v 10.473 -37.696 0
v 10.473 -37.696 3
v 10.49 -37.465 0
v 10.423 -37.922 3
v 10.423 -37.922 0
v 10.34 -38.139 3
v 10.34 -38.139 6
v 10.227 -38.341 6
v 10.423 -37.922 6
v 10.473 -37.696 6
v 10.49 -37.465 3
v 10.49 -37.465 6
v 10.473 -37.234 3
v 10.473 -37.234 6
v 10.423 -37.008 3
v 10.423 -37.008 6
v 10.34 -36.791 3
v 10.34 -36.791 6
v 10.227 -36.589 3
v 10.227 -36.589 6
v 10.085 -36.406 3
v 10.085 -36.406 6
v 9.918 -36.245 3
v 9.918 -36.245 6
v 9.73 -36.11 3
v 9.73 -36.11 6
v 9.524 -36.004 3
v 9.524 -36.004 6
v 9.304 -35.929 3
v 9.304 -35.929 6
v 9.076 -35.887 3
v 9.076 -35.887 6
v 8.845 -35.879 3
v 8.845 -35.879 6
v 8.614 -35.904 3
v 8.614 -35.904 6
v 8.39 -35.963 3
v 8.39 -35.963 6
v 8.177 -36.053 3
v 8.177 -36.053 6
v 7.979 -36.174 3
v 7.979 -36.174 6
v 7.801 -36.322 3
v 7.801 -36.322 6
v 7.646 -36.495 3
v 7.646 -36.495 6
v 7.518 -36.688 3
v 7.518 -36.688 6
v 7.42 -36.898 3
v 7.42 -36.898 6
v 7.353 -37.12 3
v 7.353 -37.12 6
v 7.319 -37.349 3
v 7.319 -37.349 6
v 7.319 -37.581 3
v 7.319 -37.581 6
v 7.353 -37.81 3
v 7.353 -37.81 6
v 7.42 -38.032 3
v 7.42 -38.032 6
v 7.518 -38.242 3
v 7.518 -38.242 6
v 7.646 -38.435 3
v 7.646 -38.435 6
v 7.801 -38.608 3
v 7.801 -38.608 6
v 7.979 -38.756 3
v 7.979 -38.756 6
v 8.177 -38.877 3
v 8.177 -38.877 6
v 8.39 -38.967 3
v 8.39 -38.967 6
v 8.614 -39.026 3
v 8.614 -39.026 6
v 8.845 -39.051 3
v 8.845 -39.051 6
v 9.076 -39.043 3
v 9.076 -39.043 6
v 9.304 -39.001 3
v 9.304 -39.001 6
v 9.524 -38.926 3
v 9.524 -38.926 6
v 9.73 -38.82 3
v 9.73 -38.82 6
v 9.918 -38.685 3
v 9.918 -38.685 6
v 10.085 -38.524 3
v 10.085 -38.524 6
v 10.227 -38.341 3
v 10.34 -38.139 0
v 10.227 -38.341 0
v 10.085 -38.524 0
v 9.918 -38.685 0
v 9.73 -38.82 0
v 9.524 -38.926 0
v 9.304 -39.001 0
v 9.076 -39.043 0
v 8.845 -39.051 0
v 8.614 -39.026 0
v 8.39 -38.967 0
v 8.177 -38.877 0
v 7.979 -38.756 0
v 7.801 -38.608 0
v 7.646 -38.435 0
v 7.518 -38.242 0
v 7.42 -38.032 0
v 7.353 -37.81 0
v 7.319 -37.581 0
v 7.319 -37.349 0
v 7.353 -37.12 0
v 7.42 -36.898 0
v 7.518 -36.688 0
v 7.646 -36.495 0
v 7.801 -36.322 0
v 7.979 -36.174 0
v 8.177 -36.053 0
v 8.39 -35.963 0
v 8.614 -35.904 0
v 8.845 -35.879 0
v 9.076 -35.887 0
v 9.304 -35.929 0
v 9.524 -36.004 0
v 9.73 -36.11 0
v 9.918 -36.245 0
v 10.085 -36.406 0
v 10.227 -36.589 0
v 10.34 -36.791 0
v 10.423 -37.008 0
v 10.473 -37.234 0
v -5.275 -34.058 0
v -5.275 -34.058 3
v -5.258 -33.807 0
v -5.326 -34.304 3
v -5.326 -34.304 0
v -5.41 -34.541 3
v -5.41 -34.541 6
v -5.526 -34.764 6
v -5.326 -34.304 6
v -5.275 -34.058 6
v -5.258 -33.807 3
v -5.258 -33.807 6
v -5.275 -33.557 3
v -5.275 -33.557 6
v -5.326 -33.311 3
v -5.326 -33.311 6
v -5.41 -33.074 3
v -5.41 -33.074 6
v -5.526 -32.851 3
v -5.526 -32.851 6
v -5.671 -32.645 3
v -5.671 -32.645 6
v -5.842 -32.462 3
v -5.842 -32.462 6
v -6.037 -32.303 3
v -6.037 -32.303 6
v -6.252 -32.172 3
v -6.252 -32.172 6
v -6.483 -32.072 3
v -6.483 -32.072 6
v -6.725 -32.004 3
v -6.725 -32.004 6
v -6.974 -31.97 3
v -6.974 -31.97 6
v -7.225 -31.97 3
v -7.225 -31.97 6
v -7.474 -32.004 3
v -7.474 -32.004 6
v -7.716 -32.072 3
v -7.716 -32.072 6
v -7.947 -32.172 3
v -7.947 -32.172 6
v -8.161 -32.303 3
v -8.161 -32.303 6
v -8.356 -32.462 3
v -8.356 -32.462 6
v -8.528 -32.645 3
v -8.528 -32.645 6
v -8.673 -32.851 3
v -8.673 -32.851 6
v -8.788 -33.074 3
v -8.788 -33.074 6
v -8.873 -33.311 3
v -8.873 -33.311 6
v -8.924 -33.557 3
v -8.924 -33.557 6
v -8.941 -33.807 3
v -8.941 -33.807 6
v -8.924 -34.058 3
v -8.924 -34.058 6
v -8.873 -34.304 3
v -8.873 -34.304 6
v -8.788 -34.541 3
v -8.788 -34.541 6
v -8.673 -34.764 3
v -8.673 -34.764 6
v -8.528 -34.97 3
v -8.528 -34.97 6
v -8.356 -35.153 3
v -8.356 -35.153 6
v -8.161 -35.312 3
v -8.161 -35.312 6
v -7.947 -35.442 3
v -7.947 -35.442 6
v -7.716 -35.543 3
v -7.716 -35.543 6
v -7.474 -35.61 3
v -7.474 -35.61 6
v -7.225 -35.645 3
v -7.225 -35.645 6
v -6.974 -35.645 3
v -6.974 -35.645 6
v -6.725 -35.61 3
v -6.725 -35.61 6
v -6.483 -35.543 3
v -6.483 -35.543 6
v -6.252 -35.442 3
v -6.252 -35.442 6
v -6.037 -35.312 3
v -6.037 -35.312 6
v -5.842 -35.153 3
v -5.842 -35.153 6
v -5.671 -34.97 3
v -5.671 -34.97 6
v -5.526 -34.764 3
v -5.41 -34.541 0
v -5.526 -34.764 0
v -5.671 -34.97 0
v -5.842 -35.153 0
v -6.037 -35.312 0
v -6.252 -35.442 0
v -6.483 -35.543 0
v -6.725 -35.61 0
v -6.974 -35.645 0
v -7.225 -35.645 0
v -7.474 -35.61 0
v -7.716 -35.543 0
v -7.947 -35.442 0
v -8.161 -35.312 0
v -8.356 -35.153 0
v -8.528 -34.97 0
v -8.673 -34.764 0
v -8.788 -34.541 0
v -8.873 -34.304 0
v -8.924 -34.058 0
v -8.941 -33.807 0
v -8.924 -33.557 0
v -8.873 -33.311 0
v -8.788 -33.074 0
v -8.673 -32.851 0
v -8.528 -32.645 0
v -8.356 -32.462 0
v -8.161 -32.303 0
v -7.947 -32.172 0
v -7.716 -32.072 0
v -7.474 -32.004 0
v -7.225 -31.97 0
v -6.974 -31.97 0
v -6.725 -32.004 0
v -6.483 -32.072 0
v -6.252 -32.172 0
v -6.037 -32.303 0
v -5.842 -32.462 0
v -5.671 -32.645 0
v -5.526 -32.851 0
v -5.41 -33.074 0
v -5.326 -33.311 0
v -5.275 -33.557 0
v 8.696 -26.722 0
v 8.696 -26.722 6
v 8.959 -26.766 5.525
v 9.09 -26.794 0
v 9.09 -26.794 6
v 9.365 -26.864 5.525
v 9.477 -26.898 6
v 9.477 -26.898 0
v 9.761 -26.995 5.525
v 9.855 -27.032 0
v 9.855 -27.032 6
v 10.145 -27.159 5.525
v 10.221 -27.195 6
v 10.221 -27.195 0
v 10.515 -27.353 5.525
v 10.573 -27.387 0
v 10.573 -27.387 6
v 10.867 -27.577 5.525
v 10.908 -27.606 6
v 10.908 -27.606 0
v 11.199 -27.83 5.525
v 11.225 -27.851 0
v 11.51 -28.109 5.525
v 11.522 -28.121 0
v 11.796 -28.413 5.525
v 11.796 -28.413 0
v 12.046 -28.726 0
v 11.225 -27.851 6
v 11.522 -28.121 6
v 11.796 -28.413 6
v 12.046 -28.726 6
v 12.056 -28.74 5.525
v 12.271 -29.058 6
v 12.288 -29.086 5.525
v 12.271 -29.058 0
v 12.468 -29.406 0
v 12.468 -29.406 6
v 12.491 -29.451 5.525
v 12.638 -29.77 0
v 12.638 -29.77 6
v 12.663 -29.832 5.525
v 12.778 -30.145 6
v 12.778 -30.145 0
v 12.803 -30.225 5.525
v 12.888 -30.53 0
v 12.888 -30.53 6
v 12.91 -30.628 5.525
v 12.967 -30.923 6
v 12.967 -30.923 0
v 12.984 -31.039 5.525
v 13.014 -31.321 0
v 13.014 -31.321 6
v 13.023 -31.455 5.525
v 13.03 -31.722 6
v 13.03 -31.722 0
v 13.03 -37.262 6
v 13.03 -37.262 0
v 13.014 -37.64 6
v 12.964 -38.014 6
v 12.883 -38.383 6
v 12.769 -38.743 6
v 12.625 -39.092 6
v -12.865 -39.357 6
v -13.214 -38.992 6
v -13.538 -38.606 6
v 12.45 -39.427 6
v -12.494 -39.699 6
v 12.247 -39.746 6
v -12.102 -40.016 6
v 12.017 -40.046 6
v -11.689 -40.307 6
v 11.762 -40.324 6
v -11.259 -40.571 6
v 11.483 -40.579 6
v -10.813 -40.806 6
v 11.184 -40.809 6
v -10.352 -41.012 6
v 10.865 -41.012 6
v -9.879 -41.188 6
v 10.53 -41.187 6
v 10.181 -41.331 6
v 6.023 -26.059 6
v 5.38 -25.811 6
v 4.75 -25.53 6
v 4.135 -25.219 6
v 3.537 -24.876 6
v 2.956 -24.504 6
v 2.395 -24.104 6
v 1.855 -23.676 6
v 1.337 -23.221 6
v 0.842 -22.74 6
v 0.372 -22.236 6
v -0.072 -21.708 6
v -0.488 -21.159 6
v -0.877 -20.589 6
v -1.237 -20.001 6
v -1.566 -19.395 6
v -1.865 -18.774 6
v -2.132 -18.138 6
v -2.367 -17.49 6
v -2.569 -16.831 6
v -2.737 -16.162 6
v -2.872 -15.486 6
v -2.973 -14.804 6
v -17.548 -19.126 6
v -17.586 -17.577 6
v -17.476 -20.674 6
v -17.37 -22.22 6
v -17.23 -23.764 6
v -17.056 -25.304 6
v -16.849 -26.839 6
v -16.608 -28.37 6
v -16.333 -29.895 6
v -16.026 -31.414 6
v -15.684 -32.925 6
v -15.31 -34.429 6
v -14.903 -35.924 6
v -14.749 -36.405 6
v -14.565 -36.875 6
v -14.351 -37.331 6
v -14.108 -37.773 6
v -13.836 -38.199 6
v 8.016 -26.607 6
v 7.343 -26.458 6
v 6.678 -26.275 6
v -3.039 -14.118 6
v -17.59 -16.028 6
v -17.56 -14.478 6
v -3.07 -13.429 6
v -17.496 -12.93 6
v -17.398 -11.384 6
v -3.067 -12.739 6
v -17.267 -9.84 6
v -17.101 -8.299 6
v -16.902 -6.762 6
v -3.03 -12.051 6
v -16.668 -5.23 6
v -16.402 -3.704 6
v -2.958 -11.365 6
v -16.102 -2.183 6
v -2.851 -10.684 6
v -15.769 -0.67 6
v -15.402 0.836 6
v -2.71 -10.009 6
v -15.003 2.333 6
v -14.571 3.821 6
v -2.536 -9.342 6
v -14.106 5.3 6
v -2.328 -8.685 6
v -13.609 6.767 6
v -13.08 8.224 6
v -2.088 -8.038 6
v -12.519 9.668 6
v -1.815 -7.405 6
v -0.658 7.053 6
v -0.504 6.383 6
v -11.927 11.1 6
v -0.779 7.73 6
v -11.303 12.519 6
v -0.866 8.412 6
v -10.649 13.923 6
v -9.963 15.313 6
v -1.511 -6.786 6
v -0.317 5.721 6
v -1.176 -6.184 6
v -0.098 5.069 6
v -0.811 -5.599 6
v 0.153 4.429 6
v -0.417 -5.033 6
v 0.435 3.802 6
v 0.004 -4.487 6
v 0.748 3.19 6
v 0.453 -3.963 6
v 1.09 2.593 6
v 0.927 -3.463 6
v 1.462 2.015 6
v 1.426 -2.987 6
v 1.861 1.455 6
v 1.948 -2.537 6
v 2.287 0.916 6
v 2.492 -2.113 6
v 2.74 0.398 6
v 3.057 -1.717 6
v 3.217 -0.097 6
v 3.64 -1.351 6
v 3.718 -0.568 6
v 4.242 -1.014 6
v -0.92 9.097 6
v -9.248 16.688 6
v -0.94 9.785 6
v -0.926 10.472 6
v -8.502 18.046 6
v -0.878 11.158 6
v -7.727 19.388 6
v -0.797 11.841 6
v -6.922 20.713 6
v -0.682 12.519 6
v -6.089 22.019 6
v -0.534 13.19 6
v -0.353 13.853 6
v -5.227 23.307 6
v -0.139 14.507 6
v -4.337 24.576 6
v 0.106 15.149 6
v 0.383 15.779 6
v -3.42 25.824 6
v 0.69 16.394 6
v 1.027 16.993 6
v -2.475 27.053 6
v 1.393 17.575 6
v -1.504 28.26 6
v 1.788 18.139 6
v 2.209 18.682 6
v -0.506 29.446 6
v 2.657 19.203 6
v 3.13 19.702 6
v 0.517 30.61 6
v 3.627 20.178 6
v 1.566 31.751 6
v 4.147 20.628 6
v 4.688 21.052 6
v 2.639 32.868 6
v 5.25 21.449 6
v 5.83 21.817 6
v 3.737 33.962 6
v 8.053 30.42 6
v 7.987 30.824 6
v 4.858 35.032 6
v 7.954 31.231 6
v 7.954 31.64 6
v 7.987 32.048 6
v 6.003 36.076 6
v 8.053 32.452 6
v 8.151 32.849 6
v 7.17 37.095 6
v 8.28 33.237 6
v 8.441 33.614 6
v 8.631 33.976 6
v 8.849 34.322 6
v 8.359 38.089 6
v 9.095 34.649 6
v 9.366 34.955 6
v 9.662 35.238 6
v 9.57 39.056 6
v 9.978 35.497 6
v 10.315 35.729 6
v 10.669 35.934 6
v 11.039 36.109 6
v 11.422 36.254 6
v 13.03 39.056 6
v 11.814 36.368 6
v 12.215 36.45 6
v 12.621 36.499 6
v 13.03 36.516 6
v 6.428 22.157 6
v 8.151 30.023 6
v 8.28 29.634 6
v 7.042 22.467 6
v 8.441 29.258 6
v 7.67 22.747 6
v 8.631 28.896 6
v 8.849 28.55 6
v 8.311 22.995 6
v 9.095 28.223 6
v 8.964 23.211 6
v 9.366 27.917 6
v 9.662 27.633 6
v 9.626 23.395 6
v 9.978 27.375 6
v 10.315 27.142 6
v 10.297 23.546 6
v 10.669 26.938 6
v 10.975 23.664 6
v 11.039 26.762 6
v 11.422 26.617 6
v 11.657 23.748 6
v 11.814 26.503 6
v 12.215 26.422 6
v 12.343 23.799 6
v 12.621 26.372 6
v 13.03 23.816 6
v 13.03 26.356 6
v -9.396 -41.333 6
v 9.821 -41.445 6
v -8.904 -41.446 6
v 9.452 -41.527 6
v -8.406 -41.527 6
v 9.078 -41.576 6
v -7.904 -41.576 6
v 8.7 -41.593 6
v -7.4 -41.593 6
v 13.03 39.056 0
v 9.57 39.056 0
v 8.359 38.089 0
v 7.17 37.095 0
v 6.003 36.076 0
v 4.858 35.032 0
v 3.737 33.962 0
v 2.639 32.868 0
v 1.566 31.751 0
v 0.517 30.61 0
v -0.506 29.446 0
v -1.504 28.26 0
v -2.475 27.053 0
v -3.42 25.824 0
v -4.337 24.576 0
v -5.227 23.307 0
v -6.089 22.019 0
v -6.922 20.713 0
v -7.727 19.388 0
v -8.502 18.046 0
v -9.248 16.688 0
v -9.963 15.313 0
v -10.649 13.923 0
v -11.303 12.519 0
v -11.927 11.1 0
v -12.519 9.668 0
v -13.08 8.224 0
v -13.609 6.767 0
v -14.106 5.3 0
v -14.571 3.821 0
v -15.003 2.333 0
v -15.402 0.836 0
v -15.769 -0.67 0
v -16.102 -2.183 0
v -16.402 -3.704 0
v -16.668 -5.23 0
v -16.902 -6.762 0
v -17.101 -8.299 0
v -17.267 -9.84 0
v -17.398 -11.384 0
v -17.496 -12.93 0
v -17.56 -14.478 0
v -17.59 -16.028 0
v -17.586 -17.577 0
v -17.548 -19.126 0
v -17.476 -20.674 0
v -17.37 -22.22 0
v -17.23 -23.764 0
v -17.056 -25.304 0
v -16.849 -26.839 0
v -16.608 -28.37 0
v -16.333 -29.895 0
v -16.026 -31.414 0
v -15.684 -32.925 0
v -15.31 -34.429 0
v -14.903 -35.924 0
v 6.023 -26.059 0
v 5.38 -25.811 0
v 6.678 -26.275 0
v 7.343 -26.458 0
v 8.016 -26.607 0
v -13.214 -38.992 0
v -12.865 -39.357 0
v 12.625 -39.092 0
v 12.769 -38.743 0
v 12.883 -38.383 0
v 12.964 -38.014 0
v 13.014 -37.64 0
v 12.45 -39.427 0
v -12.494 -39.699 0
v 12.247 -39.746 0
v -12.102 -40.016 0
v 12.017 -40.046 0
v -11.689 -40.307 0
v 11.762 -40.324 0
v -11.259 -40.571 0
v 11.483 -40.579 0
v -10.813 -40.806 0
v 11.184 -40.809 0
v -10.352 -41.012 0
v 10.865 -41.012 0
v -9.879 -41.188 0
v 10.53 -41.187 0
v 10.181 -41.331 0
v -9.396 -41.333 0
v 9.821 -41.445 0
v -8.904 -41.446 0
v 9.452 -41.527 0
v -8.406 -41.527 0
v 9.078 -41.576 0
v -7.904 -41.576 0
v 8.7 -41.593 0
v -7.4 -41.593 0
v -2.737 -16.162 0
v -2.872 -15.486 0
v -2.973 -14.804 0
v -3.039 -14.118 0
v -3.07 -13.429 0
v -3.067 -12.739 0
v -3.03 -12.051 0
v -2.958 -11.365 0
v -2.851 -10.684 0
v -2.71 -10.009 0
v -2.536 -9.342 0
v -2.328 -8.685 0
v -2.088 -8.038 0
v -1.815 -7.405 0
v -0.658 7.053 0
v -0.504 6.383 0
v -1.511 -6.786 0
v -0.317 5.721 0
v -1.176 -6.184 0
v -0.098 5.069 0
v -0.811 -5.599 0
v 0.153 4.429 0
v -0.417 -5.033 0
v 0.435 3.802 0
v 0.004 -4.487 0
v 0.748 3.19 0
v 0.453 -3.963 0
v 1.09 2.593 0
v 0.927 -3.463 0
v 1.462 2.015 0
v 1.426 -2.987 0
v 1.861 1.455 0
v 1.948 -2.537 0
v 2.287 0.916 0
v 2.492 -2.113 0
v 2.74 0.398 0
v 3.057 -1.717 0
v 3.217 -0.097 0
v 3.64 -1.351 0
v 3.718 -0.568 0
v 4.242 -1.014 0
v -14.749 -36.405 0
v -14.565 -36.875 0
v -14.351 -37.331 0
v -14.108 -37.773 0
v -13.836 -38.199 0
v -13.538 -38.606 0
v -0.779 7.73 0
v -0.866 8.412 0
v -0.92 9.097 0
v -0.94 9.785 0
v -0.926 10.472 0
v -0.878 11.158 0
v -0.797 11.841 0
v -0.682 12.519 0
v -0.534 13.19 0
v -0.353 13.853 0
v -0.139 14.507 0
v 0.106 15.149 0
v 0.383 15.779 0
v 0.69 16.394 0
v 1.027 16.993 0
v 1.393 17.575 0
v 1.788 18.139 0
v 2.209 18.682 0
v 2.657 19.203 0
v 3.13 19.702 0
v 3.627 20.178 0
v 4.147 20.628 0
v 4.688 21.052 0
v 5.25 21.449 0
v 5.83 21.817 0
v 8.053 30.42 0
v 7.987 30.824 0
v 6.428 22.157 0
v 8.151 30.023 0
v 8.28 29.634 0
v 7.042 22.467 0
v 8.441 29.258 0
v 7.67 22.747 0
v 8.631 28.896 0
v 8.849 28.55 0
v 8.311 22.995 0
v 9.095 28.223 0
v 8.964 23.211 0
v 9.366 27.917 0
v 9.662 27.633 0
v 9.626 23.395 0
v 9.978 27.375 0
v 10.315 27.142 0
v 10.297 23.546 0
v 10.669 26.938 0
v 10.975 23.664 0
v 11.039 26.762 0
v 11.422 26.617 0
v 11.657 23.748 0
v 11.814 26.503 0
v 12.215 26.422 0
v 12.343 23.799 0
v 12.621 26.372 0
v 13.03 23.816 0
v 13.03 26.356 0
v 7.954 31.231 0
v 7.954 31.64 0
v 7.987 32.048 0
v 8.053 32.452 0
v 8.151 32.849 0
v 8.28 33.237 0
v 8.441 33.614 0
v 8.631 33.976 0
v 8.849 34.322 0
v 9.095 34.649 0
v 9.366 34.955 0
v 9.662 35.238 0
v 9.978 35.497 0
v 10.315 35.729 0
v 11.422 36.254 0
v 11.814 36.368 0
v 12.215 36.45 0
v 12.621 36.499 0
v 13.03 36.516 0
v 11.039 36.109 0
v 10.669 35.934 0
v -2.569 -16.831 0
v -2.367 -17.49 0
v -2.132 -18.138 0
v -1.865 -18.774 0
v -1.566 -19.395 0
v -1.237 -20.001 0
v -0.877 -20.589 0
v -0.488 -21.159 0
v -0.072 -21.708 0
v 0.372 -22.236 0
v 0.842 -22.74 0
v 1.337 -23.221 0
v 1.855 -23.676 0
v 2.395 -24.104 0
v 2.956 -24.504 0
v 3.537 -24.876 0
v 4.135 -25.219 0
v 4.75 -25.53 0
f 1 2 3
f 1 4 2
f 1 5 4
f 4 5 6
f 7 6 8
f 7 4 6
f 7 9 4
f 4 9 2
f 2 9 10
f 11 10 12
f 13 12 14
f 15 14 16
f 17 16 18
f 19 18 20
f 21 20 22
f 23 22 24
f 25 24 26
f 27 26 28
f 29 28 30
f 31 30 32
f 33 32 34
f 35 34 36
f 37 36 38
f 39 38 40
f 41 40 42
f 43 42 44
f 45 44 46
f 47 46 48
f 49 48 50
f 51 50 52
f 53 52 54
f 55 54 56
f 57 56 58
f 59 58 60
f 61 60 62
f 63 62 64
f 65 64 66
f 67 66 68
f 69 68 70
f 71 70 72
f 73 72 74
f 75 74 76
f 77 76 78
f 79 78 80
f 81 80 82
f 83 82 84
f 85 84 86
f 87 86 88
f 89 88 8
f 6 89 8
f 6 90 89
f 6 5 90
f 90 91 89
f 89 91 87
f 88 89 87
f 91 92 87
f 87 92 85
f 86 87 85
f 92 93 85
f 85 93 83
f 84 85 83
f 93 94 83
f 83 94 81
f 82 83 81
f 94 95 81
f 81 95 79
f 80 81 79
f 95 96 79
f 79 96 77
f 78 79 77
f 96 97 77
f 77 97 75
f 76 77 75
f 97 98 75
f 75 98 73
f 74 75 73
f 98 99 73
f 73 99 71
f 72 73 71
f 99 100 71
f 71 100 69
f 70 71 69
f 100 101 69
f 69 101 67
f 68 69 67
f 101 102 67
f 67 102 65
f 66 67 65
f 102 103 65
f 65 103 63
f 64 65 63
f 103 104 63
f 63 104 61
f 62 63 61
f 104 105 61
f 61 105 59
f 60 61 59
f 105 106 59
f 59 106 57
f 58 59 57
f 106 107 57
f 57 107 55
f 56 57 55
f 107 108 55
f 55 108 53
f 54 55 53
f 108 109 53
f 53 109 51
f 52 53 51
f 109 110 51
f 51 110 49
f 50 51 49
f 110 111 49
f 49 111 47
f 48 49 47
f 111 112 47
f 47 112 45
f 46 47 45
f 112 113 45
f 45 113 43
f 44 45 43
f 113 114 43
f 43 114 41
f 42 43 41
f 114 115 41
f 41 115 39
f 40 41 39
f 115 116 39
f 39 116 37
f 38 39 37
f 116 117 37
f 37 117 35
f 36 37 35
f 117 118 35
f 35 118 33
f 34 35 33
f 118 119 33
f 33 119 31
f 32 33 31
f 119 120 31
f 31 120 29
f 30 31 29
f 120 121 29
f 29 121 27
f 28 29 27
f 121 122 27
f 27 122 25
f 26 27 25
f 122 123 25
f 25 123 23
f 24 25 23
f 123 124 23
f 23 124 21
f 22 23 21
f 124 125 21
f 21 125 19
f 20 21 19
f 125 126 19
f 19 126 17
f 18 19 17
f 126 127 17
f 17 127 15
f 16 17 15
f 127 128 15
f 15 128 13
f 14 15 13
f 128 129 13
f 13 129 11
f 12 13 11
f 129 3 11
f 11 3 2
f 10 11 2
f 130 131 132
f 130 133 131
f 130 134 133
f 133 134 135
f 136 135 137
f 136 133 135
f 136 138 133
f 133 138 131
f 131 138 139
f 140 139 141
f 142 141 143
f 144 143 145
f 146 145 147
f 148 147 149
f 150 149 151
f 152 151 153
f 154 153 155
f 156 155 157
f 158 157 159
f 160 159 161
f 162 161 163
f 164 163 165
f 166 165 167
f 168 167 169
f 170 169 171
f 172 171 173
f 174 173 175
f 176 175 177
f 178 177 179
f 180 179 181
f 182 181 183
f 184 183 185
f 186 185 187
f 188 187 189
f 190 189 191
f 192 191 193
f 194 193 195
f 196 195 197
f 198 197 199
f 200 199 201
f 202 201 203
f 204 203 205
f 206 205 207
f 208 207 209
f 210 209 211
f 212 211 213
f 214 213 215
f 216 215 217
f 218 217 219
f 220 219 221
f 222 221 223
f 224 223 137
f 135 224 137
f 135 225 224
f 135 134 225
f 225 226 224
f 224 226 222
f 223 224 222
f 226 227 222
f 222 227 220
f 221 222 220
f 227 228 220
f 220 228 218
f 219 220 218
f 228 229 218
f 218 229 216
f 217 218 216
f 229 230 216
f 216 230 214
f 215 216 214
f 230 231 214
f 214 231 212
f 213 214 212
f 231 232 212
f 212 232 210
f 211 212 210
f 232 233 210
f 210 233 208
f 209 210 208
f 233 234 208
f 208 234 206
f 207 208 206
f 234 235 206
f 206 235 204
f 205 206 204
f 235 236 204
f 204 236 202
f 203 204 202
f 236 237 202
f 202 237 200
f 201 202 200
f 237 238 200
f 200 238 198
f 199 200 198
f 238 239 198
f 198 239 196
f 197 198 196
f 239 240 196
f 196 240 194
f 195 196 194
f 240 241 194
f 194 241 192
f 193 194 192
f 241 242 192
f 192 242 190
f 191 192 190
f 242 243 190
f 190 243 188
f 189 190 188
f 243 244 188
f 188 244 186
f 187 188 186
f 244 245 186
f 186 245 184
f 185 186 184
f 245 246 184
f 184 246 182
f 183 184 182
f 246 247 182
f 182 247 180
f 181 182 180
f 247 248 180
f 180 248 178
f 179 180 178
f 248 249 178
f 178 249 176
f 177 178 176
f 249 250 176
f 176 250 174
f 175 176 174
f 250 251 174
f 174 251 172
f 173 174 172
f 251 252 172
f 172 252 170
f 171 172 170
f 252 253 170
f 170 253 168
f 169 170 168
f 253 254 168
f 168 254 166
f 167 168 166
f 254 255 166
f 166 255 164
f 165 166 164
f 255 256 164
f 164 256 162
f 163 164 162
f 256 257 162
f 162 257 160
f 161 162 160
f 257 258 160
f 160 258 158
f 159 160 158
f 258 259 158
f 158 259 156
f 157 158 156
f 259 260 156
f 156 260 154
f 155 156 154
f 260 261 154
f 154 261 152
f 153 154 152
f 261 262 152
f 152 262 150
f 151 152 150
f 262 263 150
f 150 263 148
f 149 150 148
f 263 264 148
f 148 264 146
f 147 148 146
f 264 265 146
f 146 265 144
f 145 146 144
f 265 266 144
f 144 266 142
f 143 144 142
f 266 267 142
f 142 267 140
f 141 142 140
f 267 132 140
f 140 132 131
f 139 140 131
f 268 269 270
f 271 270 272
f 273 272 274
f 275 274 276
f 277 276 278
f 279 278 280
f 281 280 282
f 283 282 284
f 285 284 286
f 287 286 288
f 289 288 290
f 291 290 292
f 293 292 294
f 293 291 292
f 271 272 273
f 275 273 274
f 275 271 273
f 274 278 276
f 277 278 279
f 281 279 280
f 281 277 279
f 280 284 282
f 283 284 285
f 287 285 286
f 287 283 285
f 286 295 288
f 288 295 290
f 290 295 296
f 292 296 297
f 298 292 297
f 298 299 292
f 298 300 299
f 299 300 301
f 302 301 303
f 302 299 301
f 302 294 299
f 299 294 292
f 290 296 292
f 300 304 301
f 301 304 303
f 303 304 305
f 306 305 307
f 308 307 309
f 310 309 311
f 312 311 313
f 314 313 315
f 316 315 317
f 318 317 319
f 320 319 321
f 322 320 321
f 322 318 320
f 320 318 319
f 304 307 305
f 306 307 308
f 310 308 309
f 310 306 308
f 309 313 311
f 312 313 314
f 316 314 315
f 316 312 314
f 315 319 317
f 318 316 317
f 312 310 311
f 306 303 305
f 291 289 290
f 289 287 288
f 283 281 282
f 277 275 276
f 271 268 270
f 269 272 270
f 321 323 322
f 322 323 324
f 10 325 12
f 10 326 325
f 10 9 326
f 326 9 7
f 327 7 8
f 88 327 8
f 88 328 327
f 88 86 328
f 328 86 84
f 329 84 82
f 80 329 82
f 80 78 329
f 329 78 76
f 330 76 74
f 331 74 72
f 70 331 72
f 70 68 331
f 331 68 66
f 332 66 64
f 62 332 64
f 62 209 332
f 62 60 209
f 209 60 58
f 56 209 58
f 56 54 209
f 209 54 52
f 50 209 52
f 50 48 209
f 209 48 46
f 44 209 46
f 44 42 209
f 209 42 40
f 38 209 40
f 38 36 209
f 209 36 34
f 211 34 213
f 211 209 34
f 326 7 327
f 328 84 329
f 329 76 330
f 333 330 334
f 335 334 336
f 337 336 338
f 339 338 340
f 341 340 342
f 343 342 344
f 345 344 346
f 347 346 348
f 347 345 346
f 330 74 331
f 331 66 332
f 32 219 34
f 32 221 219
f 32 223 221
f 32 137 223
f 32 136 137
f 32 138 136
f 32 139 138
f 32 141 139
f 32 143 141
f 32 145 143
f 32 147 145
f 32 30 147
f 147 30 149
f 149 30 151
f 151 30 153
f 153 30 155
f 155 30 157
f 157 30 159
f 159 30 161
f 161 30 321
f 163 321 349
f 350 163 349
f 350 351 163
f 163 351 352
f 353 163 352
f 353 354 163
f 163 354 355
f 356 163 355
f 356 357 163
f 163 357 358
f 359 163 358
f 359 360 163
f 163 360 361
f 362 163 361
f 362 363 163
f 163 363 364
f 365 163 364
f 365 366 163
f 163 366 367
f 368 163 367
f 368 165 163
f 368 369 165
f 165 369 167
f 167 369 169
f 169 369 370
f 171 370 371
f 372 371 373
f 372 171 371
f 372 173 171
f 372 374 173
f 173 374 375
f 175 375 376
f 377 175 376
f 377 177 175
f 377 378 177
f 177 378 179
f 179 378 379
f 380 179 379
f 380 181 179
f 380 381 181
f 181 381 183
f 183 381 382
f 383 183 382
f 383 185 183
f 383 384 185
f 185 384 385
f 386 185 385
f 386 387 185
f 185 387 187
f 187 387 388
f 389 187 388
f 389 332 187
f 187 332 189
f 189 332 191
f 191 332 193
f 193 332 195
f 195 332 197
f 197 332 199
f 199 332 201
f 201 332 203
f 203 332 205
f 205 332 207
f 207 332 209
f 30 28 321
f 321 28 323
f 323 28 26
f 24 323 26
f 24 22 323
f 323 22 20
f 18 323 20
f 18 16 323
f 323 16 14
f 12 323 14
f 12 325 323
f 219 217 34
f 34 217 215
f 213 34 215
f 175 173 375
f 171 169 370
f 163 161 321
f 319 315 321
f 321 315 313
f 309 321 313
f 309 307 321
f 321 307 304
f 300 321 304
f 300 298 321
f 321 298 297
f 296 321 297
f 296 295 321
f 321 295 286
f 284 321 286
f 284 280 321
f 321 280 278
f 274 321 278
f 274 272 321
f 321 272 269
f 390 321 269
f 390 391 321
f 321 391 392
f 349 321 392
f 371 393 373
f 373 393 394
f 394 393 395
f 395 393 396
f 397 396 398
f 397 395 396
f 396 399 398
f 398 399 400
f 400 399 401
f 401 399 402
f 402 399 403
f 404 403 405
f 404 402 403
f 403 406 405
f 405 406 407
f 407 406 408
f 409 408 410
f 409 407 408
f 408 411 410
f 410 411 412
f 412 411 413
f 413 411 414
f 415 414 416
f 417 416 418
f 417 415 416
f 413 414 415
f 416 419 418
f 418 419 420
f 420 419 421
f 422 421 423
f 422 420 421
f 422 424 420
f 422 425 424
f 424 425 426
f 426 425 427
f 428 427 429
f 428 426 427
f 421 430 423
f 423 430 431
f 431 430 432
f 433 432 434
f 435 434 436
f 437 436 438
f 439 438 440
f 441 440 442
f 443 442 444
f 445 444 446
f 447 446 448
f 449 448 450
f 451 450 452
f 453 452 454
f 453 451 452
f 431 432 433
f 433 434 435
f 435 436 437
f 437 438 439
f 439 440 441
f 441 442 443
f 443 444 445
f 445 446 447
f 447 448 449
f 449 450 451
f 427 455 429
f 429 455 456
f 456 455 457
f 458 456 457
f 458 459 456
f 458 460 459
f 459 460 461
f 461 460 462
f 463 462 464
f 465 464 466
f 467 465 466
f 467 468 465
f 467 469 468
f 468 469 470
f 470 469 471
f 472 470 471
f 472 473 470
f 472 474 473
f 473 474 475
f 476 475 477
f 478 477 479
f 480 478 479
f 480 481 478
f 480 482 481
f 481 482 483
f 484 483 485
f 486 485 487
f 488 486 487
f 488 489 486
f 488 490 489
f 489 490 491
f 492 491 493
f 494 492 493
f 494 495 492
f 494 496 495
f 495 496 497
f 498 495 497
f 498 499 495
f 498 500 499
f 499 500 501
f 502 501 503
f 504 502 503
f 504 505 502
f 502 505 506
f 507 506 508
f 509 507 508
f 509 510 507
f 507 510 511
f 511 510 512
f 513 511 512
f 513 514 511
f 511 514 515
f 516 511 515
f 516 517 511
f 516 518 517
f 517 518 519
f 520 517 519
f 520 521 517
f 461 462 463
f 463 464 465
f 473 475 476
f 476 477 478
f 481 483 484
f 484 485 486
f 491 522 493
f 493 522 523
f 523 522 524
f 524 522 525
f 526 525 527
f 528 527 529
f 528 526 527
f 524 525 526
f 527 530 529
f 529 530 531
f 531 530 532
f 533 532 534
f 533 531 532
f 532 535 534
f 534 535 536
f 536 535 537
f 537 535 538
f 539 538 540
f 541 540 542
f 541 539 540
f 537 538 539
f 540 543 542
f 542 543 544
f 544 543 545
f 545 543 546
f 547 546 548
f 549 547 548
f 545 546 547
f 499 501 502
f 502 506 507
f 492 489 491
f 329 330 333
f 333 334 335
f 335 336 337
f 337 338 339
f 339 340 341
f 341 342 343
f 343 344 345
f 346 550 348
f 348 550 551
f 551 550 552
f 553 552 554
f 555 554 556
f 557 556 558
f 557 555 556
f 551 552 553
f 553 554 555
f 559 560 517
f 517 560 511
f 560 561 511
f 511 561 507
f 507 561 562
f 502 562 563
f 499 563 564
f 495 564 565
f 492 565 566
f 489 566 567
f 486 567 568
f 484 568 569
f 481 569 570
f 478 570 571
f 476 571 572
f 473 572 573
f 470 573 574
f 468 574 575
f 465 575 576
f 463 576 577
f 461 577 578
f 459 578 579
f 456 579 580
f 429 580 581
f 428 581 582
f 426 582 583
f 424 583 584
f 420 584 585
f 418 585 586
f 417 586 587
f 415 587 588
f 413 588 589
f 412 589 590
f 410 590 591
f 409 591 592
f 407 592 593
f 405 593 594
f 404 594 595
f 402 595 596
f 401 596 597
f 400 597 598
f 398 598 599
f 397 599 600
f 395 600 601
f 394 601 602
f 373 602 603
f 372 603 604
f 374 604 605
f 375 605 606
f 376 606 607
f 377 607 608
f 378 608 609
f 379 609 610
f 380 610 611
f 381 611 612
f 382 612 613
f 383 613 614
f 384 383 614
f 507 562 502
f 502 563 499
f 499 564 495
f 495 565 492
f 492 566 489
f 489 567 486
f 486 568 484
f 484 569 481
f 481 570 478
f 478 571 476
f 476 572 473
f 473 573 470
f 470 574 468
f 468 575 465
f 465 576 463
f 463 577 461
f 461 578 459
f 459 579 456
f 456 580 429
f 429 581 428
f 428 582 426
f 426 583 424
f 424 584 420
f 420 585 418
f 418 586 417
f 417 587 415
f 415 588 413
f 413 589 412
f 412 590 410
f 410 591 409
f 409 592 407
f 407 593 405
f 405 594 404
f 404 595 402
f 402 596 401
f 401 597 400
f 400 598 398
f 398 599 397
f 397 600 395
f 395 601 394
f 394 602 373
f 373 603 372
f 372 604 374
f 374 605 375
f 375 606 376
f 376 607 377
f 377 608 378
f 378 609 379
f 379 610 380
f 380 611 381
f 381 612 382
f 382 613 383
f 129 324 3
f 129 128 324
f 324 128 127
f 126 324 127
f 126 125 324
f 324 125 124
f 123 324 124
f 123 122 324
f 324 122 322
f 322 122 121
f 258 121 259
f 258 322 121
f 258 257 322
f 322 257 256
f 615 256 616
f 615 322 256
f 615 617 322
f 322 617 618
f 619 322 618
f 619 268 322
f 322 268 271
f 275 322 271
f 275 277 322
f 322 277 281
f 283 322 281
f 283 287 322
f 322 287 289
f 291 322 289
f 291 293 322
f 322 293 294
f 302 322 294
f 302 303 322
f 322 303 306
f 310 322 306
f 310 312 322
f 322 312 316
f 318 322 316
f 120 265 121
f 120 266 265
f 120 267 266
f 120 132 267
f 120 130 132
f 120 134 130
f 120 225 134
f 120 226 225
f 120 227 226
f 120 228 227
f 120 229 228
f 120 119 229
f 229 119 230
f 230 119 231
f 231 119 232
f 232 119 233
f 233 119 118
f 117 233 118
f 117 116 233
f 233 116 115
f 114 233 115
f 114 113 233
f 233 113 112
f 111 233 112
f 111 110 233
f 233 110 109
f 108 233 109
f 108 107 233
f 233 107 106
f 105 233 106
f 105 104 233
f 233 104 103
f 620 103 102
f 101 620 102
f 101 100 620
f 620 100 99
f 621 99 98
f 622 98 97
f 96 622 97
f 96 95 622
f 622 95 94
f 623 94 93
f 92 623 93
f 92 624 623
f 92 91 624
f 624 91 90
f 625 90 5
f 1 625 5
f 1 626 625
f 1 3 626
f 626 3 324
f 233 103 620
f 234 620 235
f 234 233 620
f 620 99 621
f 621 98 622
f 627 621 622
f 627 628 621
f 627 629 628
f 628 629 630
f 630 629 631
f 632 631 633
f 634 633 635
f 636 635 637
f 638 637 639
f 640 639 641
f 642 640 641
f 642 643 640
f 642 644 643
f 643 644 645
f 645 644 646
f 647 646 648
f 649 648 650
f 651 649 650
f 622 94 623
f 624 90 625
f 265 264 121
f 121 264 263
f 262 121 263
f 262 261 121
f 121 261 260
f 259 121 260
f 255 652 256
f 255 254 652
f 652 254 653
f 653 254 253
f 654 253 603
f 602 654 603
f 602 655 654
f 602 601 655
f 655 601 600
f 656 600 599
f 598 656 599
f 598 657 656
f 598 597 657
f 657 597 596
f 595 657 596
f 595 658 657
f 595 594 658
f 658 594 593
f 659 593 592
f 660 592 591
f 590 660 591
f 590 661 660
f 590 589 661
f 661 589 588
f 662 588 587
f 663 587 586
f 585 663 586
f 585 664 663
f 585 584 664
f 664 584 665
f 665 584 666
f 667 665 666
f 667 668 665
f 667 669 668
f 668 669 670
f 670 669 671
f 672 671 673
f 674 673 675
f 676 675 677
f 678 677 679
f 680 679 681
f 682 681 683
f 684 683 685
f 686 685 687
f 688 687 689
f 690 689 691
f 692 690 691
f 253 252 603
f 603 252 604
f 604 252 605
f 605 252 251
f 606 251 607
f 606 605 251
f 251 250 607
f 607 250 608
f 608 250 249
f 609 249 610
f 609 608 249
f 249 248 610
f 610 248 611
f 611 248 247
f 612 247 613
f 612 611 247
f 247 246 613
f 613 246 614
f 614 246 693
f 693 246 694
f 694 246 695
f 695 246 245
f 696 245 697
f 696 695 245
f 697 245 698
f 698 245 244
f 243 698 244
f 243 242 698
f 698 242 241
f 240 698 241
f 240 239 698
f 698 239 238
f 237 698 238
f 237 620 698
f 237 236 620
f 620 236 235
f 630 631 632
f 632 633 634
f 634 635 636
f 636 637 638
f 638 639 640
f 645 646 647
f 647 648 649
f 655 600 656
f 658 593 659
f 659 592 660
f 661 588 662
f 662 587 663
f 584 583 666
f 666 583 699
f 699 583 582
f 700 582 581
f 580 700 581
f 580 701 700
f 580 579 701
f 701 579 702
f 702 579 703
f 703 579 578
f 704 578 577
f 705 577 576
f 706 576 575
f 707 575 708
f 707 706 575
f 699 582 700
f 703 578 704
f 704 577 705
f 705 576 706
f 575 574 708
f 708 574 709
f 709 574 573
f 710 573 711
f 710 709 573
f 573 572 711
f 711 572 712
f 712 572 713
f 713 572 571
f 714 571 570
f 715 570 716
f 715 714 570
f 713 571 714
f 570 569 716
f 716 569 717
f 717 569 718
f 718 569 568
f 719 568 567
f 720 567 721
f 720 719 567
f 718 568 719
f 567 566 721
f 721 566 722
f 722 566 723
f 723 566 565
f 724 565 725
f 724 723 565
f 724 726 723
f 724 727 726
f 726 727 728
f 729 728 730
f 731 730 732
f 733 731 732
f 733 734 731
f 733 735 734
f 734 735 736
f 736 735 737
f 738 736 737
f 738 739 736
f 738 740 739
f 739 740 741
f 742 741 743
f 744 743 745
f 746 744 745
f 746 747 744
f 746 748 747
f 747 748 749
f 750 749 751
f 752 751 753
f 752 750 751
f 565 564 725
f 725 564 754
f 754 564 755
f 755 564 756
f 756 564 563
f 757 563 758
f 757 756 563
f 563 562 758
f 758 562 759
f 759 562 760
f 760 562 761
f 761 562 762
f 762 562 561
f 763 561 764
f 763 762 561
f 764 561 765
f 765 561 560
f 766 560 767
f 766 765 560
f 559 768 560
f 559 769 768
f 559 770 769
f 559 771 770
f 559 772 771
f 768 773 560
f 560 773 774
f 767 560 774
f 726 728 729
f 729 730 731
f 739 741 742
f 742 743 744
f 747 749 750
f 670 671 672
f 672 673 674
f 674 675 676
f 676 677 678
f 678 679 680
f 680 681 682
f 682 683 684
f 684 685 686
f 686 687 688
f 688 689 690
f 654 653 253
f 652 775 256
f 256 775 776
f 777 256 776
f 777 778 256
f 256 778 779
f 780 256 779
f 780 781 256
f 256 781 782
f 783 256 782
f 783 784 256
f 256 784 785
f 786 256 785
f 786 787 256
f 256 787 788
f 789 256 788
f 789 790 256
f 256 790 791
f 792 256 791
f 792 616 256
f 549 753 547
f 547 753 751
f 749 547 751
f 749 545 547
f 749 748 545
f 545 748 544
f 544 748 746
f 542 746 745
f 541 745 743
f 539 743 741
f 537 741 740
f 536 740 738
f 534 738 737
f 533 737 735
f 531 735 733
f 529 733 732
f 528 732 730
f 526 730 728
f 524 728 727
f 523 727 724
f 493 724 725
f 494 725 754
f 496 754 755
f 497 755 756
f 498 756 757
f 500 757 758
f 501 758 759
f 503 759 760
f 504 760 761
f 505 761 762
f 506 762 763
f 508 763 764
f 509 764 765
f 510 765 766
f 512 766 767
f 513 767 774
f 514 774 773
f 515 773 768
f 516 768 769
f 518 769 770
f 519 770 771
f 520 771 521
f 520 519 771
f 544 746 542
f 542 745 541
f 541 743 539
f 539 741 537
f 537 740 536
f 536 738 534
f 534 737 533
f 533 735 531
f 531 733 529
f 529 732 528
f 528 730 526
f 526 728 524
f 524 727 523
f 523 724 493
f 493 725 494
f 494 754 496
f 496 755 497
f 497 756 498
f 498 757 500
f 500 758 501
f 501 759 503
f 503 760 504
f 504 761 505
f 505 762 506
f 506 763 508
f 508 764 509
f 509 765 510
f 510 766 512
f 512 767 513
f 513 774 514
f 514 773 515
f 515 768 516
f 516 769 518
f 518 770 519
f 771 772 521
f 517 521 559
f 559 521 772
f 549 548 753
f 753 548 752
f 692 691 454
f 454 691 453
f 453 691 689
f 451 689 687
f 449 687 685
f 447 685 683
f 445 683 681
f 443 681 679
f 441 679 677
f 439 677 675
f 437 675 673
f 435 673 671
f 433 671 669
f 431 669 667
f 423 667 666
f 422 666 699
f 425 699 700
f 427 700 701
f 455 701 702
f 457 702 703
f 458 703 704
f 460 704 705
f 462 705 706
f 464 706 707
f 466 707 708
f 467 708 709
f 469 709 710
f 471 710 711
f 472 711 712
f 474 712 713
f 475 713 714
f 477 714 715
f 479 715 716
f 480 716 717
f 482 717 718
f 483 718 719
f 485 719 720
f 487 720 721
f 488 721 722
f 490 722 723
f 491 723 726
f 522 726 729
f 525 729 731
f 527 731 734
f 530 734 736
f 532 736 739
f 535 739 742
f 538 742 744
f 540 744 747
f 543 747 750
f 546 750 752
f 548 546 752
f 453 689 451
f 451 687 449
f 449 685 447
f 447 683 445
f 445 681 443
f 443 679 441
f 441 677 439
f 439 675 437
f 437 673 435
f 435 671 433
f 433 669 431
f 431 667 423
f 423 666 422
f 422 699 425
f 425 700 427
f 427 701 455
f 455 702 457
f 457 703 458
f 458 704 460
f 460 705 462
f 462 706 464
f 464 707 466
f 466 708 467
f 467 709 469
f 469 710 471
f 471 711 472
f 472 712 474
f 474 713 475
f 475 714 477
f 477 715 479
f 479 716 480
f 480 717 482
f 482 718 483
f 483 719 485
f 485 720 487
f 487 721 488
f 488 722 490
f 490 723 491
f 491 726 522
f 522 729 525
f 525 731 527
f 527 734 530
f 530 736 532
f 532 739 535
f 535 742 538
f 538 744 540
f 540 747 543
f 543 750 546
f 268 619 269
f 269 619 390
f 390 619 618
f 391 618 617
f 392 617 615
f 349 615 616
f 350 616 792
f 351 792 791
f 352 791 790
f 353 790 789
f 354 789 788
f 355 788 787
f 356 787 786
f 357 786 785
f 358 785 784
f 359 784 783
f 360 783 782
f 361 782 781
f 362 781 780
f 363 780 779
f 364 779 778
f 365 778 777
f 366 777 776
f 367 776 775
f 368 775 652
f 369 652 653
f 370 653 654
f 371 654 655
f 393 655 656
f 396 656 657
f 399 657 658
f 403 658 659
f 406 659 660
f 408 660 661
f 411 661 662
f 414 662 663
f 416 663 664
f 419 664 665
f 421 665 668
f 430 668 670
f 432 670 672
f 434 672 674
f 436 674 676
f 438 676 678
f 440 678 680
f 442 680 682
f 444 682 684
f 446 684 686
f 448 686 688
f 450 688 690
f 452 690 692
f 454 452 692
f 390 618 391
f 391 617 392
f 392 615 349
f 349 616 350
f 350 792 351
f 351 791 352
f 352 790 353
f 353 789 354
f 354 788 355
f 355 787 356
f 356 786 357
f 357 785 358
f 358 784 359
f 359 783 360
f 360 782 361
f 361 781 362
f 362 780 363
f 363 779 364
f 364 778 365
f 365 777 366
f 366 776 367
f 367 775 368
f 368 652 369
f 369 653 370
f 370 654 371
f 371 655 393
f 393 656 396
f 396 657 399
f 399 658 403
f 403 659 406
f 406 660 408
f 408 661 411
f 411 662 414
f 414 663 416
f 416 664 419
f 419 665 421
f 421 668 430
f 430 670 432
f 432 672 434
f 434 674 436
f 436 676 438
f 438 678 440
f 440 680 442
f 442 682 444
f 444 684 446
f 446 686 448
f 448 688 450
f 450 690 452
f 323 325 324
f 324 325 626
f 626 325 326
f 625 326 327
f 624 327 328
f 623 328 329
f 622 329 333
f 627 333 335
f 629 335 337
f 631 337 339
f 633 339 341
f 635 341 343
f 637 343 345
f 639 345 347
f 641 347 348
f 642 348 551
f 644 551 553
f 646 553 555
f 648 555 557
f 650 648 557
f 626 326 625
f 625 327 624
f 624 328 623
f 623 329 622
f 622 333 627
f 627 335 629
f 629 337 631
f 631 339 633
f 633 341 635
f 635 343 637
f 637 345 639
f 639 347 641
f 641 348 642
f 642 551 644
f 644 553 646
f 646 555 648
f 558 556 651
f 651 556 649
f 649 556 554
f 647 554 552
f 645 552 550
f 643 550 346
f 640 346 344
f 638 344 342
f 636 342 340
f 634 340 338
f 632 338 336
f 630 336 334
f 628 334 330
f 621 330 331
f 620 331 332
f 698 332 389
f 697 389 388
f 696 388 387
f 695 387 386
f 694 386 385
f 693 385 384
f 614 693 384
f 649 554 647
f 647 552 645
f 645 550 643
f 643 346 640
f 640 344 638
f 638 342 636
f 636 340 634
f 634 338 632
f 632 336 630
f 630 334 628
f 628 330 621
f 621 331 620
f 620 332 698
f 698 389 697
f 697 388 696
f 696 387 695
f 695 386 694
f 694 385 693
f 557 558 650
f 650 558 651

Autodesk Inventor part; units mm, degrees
ref_plane "YZ Plane" through (0, 0, 0) normal (1, 0, 0) x (0, 1, 0)
ref_plane "XZ Plane" through (0, 0, 0) normal (0, 1, 0) x (-1, 0, 0)
ref_plane "XY Plane" through (0, 0, 0) normal (0, 0, 1) x (1, 0, 0)
sketch "Sketch2" plane through (0, 0, 0) normal (0, 0, 1) x (1, 0, 0)
  line L0 (13.0302, 41.5925) -> (13.0302, -41.5925)
  line L1 (13.0302, -41.5925) -> (-13.0302, -41.5925)
  arc A0 (13.0302, 41.5925) -> (-13.0302, -41.5925) centre (53.0449, -16.618) ccw
  point P0 (0, 0)
  point P1 (13.0302, 0)
  point P2 (0, -41.5925)
  dimension "d6" = 26.0604
  dimension "d32" = 70.6374
  dimension "d33" = 83.185
extrude "Extrusion1" add sketch "Sketch2" along normal blind 6
fillet "Fillet2" radius 7.8 1 edges at (-13.0302, -41.5925, 3)
fillet "Fillet3" radius 4.33 1 edges at (13.0302, -41.5925, 3)
sketch "Sketch6" plane through (0, 0, 6) normal (0, 0, 1) x (1, 0, 0)
  line L0 (13.0302, -37.2625) -> (13.0302, 41.5925) projected
  arc A0 (8.7002, -41.5925) -> (13.0302, -37.2625) centre (8.7002, -37.2625) ccw projected
  line L1 (13.0302, -37.2625) -> (13.0302, 41.5925) projected
  arc A1 (13.0302, 41.5925) -> (-14.9029, -35.9244) centre (53.0449, -16.618) ccw projected
  arc A2 (-14.9029, -35.9244) -> (-7.3999, -41.5925) centre (-7.3999, -33.7925) ccw projected
  line L2 (-7.3999, -41.5925) -> (8.7002, -41.5925) projected
  arc A3 (4.2419, -1.0136) -> (13.0302, -26.6511) centre (10.6426, -13.1445) ccw
  line L3 (13.0302, 0.3621) -> (13.0302, -26.6511)
  arc A4 (13.0302, 23.8159) -> (4.2419, -1.0136) centre (13.0302, 9.8459) ccw
  line L4 (13.0302, 0.3621) -> (13.0302, -4.1241)
  line L5 (13.0302, 0.3621) -> (13.0302, 23.8159)
  point P0 (0, 0)
  dimension "d37" = 2.3876
  dimension "d38" = 13.716
  dimension "d39" = 14.732
  dimension "d41" = 50.8
  dimension "d42" = 13.97
extrude "Extrusion4" cut sketch "Sketch6" against normal through all contours A3 A4 L0
sketch "Sketch7" plane through (0, 0, 6) normal (0, 0, 1) x (1, 0, 0)
  arc A0 (13.0302, 23.8159) -> (4.2419, -1.0136) centre (13.0302, 9.8459) ccw projected
  line L0 (13.0302, 23.8159) -> (13.0302, 41.5925) projected
  arc A1 (13.0302, 41.5925) -> (-14.9029, -35.9244) centre (53.0449, -16.618) ccw projected
  arc A2 (-14.9029, -35.9244) -> (-7.3999, -41.5925) centre (-7.3999, -33.7925) ccw projected
  line L1 (-7.3999, -41.5925) -> (8.7002, -41.5925) projected
  arc A3 (8.7002, -41.5925) -> (13.0302, -37.2625) centre (8.7002, -37.2625) ccw projected
  line L2 (13.0302, -37.2625) -> (13.0302, -26.6511) projected
  arc A4 (4.2419, -1.0136) -> (13.0302, -26.6511) centre (10.6426, -13.1445) ccw projected
  line L3 (13.0302, 23.8159) -> (13.0302, 41.5925) projected
  line L4 (13.0302, 23.8159) -> (17.2669, 23.8159) construction
  arc A5 (13.0302, 36.5159) -> (13.0302, 26.3559) centre (13.0302, 31.4359) ccw
  line L5 (13.0302, 36.5159) -> (13.0302, 26.3559)
  point P0 (0, 0)
  dimension "d46" = 10.16
  dimension "d47" = 2.54
extrude "Extrusion5" cut sketch "Sketch7" against normal through all contours A5 L0
sketch "Sketch8" plane through (0, 0, 6) normal (0, 0, 1) x (1, 0, 0)
  arc A0 (13.0302, 36.5159) -> (13.0302, 26.3559) centre (13.0302, 31.4359) ccw projected
  line L0 (13.0302, 36.5159) -> (13.0302, 41.5925) projected
  arc A1 (13.0302, 41.5925) -> (-14.9029, -35.9244) centre (53.0449, -16.618) ccw projected
  arc A2 (-14.9029, -35.9244) -> (-7.3999, -41.5925) centre (-7.3999, -33.7925) ccw projected
  line L1 (-7.3999, -41.5925) -> (8.7002, -41.5925) projected
  arc A3 (8.7002, -41.5925) -> (13.0302, -37.2625) centre (8.7002, -37.2625) ccw projected
  line L2 (13.0302, -37.2625) -> (13.0302, -26.6511) projected
  arc A4 (4.2419, -1.0136) -> (13.0302, -26.6511) centre (10.6426, -13.1445) ccw projected
  arc A5 (13.0302, 23.8159) -> (4.2419, -1.0136) centre (13.0302, 9.8459) ccw projected
  line L3 (13.0302, 23.8159) -> (13.0302, 26.3559) projected
  line L4 (13.0302, 39.0559) -> (9.5701, 39.0559)
  arc A6 (13.0302, 41.5925) -> (-14.9029, -35.9244) centre (53.0449, -16.618) ccw projected
  line L5 (13.0302, 36.5159) -> (13.0302, 41.5925) projected
  point P0 (0, 0)
  dimension "d50" = 2.54
extrude "Extrusion6" cut sketch "Sketch8" against normal through all contours L4 A1 L0
fillet "Fillet4" radius 5.051 1 edges at (13.0302, -26.6511, 3)
sketch "Sketch9" plane through (0, 0, 6) normal (0, 0, 1) x (1, 0, 0)
  arc A0 (13.0302, -31.7215) -> (8.696, -26.7217) centre (7.9792, -31.7215) ccw projected
  arc A1 (4.2419, -1.0136) -> (8.696, -26.7217) centre (10.6426, -13.1445) ccw projected
  arc A2 (13.0302, 23.8159) -> (4.2419, -1.0136) centre (13.0302, 9.8459) ccw projected
  line L0 (13.0302, 23.8159) -> (13.0302, 26.3559) projected
  arc A3 (13.0302, 36.5159) -> (13.0302, 26.3559) centre (13.0302, 31.4359) ccw projected
  arc A4 (9.5701, 39.0559) -> (-14.9029, -35.9244) centre (53.0449, -16.618) ccw projected
  arc A5 (-14.9029, -35.9244) -> (-7.3999, -41.5925) centre (-7.3999, -33.7925) ccw projected
  line L1 (-7.3999, -41.5925) -> (8.7002, -41.5925) projected
  arc A6 (8.7002, -41.5925) -> (13.0302, -37.2625) centre (8.7002, -37.2625) ccw projected
  line L2 (13.0302, -37.2625) -> (13.0302, -31.7215) projected
  circle A7 centre (8.9027, -37.465) radius 1.5875
  circle A8 centre (-7.0993, -33.8074) radius 1.8415
  line L3 (13.0302, 36.5159) -> (13.0302, 39.0559) projected
  line L4 (13.0302, 39.0559) -> (9.5701, 39.0559) projected
  point P0 (0, 0)
  dimension "d54" = 2.54
  dimension "d55" = 2.54
  dimension "d56" = 3.175
  dimension "d57" = 5.9436
  dimension "d58" = 16.002
  dimension "d59" = 3.683
extrude "Extrusion7" cut sketch "Sketch9" against normal through all contours A7 | A8
properties part number "GripperFingersExtended"
